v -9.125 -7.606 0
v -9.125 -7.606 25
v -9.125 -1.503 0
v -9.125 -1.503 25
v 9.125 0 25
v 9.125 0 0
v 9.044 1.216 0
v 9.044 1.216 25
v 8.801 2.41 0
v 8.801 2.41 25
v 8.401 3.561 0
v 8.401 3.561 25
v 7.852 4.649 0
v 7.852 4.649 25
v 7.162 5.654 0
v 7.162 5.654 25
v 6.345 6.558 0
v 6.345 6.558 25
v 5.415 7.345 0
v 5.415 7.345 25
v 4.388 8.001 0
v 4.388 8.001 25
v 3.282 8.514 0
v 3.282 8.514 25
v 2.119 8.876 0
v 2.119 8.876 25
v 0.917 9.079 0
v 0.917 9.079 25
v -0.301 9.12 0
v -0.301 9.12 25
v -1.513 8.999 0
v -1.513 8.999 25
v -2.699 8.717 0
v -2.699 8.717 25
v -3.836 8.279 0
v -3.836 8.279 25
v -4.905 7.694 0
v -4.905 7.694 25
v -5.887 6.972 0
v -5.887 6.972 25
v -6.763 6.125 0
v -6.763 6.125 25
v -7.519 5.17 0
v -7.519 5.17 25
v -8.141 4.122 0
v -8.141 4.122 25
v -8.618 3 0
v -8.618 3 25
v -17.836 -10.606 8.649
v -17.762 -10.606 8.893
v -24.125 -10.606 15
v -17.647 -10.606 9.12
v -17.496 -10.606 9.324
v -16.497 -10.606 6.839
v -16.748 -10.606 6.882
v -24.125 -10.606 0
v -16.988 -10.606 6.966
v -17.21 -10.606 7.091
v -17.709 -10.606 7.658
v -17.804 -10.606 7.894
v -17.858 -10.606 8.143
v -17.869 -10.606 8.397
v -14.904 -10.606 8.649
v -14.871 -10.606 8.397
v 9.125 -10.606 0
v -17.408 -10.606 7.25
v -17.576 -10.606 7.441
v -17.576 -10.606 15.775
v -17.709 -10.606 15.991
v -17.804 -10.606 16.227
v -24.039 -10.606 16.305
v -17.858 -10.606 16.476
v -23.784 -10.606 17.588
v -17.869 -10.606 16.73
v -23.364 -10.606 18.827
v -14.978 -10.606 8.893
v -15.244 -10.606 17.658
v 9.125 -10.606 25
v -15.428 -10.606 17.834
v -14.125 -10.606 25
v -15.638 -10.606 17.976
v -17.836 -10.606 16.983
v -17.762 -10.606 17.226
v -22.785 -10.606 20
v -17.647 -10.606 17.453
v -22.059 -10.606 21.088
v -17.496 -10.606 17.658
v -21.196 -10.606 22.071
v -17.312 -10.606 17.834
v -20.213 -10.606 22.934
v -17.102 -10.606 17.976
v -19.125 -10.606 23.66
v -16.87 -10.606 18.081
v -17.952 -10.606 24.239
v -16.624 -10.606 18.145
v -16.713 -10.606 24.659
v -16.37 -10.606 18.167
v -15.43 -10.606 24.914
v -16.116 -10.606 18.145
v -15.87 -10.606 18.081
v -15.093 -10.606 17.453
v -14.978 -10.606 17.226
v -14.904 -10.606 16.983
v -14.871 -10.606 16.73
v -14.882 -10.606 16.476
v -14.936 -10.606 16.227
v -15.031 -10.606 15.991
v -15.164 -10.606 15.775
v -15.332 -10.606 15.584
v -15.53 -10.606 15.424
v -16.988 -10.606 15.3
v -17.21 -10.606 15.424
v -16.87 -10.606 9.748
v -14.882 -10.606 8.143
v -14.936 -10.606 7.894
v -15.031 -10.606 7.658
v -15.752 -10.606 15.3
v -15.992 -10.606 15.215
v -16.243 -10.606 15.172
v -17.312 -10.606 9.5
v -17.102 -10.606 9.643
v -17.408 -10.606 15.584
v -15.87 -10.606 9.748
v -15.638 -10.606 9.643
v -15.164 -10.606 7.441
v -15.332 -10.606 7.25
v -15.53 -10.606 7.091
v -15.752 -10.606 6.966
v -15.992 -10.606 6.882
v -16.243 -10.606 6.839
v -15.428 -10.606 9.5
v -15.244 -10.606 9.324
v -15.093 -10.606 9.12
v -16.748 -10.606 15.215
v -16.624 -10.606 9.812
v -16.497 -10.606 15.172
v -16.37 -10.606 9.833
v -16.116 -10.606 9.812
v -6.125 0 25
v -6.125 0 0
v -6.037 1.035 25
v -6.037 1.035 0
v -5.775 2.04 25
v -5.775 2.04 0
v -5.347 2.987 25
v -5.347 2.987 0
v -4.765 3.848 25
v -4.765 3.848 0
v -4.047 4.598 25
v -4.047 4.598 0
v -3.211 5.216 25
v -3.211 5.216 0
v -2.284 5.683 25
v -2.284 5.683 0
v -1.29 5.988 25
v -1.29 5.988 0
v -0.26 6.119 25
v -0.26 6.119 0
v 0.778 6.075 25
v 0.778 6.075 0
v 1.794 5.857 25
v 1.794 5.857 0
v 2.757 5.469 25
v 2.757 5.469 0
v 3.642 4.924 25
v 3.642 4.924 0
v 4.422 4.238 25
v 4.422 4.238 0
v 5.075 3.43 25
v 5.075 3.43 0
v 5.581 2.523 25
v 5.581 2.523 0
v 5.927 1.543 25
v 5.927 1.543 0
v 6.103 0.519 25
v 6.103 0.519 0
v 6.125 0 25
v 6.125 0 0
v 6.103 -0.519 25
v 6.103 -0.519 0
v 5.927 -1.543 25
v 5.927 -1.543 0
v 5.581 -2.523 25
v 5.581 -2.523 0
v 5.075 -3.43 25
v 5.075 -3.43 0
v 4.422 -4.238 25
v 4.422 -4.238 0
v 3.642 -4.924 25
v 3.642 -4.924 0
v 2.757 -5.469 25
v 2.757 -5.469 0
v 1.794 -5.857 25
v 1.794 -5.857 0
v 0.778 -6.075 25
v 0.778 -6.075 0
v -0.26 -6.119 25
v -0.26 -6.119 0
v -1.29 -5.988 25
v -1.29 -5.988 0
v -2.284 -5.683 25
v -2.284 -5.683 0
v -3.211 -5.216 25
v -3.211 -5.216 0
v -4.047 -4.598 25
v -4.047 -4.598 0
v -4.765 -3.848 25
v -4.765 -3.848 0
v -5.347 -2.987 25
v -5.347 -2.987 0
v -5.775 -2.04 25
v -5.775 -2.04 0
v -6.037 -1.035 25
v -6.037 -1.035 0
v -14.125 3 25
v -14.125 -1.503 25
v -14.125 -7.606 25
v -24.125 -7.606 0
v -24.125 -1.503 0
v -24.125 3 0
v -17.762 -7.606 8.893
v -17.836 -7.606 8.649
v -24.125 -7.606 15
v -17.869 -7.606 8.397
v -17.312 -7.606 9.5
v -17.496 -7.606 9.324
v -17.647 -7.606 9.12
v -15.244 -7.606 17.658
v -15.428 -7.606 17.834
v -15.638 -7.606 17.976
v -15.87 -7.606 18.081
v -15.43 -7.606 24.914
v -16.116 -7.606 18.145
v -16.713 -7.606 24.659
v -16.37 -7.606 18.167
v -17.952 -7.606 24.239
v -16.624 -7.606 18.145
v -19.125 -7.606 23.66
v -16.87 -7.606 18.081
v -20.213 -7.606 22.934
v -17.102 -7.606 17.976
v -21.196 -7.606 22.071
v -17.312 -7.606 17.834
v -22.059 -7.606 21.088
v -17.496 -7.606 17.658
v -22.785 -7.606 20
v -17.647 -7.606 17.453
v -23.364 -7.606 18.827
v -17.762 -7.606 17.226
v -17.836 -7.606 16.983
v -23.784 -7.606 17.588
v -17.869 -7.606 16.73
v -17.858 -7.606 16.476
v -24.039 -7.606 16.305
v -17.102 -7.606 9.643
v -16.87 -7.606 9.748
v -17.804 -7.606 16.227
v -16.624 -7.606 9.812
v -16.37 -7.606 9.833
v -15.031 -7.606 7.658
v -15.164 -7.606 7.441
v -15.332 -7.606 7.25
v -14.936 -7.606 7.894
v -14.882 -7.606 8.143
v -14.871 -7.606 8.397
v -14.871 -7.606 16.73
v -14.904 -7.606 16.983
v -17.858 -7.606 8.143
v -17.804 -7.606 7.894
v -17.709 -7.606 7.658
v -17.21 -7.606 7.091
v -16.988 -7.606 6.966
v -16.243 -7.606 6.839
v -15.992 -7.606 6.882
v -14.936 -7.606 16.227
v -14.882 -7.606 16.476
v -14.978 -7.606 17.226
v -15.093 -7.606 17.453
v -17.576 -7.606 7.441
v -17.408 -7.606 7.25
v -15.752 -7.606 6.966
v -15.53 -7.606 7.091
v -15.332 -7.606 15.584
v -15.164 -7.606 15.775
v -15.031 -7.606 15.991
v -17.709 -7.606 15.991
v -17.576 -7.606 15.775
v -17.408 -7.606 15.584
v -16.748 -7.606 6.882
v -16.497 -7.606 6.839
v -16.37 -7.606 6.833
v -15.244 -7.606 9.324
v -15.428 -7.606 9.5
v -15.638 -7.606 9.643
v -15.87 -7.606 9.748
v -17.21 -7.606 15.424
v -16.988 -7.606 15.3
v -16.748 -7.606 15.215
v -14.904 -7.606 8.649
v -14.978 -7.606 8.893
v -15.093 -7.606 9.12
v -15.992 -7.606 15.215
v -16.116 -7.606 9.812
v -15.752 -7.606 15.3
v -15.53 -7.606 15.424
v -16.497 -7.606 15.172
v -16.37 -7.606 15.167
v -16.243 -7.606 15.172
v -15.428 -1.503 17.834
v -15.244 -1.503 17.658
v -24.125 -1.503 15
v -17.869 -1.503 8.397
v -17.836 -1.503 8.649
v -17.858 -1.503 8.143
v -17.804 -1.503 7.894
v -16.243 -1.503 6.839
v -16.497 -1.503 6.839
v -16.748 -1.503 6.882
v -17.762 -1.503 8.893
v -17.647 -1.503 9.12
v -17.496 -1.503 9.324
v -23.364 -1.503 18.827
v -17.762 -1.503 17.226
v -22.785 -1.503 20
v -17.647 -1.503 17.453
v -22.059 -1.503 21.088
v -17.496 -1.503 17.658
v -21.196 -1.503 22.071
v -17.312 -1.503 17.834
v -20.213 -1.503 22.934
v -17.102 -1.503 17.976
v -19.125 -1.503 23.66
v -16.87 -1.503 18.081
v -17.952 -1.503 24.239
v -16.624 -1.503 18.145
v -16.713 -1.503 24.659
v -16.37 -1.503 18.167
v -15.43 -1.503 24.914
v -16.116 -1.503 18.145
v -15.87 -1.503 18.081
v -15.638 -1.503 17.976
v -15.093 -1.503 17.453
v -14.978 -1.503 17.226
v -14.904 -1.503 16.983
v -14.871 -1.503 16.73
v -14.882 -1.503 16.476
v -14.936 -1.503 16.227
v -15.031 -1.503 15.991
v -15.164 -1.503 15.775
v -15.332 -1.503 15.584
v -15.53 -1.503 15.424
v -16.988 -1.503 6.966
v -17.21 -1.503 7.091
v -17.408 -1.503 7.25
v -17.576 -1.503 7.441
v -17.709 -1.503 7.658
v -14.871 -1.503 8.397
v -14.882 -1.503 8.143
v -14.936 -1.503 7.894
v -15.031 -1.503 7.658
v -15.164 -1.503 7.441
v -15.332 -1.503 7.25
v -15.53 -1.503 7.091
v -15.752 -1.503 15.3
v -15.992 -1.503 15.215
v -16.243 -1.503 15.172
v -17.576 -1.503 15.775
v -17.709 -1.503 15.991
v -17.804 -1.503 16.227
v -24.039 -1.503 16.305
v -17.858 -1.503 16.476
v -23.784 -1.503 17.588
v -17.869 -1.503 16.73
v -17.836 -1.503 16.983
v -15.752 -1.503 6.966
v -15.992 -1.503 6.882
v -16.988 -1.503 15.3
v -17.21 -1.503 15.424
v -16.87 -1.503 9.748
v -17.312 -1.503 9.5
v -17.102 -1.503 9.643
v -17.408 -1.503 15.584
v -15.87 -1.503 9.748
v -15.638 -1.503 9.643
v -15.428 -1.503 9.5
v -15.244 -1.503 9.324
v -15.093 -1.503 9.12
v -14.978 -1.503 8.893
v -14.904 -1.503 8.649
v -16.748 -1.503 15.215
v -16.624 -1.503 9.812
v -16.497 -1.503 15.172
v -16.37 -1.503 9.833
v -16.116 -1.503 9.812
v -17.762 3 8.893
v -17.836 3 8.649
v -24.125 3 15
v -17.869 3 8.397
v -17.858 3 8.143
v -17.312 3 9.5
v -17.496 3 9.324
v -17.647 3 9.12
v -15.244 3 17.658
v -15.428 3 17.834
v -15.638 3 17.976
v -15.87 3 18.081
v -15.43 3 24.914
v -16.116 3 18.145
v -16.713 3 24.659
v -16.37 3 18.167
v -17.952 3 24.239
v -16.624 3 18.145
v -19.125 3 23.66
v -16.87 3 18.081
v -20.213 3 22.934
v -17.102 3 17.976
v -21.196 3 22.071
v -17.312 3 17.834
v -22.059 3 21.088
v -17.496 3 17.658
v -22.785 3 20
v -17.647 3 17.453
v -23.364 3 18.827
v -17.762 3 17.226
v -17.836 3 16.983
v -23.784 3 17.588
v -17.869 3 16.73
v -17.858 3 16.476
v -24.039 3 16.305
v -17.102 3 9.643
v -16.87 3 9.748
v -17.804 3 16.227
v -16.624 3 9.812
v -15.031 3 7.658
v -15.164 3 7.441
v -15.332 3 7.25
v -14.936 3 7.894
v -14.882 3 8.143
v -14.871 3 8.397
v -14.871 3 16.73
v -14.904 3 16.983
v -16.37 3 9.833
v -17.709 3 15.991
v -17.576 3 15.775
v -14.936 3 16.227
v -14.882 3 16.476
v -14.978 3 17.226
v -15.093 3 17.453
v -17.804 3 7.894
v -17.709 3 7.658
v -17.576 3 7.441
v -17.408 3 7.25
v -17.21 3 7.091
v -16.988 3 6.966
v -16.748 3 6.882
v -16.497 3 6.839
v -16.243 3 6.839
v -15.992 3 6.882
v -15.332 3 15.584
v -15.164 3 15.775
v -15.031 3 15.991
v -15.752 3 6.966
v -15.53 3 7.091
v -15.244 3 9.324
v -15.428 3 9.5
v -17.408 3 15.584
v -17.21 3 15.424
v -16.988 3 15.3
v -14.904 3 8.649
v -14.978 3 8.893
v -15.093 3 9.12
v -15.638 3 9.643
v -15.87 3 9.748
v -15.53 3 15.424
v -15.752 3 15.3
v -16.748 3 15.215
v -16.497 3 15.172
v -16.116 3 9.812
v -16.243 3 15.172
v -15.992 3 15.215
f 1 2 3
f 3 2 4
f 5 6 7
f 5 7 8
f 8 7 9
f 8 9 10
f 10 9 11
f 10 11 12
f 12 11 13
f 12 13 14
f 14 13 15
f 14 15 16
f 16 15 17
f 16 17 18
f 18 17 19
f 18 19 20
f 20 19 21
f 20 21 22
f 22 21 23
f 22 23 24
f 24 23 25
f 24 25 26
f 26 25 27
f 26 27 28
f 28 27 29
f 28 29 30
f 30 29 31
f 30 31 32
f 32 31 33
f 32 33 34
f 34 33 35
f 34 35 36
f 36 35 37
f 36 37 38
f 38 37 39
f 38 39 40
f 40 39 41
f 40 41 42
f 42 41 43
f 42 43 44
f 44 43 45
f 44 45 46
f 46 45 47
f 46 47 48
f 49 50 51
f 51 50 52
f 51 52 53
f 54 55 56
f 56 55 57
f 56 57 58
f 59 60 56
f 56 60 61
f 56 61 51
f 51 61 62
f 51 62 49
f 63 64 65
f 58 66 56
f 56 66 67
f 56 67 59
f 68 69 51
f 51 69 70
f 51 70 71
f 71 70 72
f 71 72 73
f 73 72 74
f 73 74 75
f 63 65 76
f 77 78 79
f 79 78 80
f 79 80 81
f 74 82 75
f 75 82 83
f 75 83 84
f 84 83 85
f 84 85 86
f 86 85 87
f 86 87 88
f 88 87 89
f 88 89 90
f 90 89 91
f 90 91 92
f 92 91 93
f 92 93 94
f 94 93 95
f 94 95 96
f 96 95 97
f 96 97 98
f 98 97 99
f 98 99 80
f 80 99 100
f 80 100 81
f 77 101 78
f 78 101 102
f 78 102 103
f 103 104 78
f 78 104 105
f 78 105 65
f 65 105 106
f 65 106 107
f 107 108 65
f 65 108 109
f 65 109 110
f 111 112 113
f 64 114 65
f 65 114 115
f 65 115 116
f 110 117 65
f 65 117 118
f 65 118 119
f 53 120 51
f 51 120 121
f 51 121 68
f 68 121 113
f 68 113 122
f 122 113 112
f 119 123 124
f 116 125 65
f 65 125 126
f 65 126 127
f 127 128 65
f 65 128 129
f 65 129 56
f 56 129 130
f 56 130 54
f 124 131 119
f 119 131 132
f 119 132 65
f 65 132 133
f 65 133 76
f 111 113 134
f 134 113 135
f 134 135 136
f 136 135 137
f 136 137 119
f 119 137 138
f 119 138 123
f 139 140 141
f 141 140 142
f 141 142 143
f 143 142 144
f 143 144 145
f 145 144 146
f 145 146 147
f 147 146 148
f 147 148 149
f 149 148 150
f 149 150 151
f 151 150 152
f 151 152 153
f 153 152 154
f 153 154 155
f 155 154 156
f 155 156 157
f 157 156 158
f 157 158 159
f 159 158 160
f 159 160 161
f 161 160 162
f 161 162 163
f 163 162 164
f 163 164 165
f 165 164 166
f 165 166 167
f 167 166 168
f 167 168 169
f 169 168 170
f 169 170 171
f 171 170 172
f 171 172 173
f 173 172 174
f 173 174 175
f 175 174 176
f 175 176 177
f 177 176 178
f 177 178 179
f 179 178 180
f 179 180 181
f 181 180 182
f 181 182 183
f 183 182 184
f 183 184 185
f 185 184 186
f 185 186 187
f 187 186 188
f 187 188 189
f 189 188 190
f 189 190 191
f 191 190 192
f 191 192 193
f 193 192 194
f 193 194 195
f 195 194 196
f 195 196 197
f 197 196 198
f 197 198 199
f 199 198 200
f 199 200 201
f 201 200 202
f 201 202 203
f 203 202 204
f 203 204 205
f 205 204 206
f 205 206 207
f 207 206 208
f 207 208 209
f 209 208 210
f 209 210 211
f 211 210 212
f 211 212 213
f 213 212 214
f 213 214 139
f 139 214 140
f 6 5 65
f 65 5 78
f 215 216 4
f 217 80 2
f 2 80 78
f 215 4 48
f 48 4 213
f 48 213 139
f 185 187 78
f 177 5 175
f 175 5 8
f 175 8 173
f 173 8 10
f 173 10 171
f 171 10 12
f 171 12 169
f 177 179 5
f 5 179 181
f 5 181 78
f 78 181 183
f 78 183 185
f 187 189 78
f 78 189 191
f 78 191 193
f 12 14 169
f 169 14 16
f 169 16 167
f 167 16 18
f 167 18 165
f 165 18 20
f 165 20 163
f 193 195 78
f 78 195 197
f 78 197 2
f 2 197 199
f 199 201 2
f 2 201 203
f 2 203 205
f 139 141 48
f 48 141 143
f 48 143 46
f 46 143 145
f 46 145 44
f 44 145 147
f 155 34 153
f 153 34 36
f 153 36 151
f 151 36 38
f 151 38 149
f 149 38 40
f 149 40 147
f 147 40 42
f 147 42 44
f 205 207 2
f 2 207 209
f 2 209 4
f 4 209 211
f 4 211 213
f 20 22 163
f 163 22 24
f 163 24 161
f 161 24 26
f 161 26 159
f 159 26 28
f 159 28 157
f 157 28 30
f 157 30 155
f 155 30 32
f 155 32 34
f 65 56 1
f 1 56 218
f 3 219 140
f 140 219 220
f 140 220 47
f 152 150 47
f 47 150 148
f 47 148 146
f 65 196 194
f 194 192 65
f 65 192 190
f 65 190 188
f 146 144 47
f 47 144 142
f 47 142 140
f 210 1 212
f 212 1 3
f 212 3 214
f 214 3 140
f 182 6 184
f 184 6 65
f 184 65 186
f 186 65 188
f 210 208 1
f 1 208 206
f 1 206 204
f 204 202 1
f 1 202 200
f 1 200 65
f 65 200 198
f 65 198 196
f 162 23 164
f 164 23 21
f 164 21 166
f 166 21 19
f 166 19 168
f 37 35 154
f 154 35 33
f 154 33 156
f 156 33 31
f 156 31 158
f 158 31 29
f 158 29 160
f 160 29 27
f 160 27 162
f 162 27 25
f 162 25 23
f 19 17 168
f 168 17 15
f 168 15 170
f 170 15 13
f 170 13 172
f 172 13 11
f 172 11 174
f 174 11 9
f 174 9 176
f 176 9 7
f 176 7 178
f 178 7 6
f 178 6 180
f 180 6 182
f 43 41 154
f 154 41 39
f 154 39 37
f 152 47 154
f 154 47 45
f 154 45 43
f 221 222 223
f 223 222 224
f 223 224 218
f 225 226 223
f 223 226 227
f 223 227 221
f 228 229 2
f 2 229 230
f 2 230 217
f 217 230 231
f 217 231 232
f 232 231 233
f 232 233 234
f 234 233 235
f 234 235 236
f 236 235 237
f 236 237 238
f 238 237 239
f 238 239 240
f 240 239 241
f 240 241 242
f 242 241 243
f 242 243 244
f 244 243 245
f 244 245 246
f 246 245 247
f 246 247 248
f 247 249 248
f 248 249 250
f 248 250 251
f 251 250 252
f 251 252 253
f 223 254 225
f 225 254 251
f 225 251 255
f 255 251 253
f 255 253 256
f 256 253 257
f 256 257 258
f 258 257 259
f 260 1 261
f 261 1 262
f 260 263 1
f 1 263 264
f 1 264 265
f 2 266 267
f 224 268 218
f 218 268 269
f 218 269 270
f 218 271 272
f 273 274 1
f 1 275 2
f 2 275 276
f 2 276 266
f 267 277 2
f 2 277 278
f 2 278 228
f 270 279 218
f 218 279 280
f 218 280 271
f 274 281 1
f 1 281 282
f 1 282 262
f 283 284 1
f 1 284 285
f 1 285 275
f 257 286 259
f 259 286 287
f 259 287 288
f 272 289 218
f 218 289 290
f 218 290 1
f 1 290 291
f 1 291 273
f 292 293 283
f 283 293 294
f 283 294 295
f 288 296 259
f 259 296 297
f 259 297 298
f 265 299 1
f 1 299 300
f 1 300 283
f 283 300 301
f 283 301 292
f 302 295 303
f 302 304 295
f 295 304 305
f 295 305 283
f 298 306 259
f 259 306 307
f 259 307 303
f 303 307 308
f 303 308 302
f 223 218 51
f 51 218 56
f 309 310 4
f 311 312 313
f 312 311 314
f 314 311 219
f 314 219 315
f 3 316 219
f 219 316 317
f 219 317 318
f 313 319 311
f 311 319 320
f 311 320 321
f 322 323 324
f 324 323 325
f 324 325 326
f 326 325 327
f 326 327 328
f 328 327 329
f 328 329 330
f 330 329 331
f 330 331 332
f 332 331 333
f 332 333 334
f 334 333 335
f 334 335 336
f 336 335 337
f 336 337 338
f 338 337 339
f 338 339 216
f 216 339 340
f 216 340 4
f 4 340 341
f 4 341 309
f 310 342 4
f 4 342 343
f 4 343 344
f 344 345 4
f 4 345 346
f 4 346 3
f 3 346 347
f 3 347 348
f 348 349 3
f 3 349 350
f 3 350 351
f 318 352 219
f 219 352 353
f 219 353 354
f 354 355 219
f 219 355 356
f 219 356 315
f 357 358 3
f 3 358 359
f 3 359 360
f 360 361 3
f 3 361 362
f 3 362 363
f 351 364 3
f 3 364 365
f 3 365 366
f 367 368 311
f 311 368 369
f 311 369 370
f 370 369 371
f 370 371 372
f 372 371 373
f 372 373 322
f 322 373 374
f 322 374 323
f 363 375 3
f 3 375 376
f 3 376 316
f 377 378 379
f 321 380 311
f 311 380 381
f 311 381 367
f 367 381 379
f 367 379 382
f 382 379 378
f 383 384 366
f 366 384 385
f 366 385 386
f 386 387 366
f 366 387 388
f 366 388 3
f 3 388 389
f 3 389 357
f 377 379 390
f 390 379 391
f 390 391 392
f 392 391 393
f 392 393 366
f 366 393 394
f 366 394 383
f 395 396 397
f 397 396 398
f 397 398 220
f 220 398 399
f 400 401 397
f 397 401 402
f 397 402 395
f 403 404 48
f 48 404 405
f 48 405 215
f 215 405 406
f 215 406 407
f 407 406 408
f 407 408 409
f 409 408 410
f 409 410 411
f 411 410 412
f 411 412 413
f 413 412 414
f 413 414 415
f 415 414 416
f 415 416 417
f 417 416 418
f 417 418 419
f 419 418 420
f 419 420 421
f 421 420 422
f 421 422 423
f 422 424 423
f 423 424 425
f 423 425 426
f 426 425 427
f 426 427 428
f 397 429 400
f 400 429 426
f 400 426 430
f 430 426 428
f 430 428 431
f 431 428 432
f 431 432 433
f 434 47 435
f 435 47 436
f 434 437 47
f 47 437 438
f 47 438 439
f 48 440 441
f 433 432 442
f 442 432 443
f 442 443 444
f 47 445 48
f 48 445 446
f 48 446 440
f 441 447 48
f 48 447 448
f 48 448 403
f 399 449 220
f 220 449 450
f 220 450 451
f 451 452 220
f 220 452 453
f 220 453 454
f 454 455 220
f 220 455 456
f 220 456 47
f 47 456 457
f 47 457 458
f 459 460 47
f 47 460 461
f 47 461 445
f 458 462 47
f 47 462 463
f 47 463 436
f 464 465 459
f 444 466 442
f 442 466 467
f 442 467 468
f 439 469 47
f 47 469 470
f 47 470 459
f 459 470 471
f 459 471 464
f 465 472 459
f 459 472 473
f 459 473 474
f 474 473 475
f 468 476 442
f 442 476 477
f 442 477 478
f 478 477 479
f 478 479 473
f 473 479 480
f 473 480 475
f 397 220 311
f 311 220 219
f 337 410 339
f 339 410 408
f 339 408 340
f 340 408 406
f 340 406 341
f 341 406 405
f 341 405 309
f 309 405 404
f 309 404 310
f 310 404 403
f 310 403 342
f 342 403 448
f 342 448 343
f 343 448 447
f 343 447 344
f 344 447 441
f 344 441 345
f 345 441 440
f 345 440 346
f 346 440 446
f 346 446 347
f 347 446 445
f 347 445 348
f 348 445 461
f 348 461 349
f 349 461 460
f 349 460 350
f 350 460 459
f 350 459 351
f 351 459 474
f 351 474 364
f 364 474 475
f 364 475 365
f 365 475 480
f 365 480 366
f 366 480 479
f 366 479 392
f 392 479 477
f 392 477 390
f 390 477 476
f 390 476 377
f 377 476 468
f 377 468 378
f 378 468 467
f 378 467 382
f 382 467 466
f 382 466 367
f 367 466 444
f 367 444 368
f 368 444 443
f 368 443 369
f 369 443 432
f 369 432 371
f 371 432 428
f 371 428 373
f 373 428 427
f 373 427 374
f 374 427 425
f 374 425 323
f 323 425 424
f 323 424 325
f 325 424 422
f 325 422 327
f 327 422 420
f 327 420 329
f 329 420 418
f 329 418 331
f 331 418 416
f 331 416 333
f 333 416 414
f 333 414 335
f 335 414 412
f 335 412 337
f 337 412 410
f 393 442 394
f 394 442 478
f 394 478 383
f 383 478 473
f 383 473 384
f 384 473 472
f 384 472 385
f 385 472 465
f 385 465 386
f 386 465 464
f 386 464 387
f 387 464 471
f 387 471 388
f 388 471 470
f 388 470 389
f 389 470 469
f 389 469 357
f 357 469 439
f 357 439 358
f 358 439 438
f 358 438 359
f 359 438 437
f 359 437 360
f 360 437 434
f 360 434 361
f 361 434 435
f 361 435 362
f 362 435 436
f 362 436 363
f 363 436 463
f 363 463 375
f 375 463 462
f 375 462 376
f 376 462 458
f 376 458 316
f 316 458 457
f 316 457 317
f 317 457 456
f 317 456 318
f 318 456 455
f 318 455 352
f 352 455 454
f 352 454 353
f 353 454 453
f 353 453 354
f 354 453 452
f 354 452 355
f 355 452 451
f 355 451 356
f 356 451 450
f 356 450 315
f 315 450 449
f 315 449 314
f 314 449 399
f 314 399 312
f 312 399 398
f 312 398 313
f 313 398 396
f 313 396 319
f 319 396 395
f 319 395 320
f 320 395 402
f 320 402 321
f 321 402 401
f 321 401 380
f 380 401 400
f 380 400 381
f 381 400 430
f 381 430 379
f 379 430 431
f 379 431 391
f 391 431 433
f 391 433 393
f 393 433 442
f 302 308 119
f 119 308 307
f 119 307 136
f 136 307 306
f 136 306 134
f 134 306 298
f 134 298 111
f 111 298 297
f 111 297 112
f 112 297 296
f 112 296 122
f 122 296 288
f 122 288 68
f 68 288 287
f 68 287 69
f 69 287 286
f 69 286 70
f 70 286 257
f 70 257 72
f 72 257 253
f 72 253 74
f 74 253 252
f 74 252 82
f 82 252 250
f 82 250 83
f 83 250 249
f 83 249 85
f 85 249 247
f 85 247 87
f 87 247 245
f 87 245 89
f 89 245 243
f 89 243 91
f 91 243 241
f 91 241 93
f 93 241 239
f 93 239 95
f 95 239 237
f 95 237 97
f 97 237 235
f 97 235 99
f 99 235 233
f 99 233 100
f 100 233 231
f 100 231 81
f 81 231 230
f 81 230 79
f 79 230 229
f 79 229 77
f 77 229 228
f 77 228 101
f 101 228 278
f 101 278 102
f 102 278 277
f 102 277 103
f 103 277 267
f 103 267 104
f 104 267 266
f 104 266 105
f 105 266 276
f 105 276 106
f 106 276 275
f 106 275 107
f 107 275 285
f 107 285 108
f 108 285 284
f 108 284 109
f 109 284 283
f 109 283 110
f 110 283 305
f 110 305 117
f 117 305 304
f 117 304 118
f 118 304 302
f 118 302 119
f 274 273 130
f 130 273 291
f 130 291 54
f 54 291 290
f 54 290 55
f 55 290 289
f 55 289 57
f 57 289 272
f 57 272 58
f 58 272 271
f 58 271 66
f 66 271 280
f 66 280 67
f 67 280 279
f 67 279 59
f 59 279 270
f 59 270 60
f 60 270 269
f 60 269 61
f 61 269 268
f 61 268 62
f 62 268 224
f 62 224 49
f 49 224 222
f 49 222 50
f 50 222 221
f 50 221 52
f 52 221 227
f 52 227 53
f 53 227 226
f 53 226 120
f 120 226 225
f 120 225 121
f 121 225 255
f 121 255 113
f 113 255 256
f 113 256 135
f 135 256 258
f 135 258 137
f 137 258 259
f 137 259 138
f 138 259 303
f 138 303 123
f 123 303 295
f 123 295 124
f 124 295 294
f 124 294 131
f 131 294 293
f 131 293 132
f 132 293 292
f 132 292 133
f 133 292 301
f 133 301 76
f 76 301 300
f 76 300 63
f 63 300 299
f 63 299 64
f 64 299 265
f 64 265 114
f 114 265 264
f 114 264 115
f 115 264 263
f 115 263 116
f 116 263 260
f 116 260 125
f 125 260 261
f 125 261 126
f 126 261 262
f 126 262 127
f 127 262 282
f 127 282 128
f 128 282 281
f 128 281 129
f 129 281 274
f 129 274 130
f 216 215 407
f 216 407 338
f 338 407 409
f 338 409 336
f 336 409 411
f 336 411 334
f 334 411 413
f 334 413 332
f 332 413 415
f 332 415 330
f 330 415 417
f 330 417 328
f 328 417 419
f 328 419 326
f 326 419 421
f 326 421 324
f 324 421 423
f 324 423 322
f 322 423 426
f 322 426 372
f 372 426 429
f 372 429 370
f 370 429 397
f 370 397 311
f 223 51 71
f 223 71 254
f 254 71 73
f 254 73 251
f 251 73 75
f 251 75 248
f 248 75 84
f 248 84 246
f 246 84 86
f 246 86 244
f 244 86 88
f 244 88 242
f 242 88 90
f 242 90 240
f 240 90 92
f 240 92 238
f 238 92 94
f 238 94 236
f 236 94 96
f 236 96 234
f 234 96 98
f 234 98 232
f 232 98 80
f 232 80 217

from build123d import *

# Parameters (mm, degrees)
ESQUISSE1_R                  = 9.125
ESQUISSE1_R_2                = 6.125
BOSS_EXTRU_1_DEPTH           = 25
ESQUISSE13_W                 = 33.25
ESQUISSE13_H                 = 25
BOSS_EXTRU_10_DEPTH          = 3
BOSS_EXTRU_11_DEPTH          = 3
BOSS_EXTRU_11_DEPTH_BACK     = 1.503194454
ESQUISSE14_W                 = 16.5
ESQUISSE14_H                 = 25
ENL_V_MAT_EXTRU_1_DEPTH      = 38.311344137
ENL_V_MAT_EXTRU_1_DEPTH_BACK = 38.311344137
ESQUISSE15_R                 = 1.5
CONG_1_R                     = 10


with BuildPart() as part:
    # Esquisse1 → Boss.-Extru.1 (new body)
    # profile 1 of 2: a face of its own
    with BuildSketch(Plane.XY):
        Circle(ESQUISSE1_R)
        Circle(ESQUISSE1_R_2, mode=Mode.SUBTRACT)
    # profile 2 of 2: a face of its own
    with BuildSketch(Plane.XY):
        with BuildLine():
            ThreePointArc((9.125, 0), (0, -9.125), (-9.125, 0))
            Line((-9.125, 0), (-9.125, -10.60590961))
            Line((-9.125, -10.60590961), (9.125, -10.60590961))
            Line((9.125, -10.60590961), (9.125, 0))
        make_face()
    extrude(amount=BOSS_EXTRU_1_DEPTH)

    # Esquisse13 → Boss.-Extru.10 (add)
    with BuildSketch(Plane.XZ.offset(10.60590961)):
        with Locations((-7.5, 12.5)):
            Rectangle(ESQUISSE13_W, ESQUISSE13_H)
    extrude(amount=-BOSS_EXTRU_10_DEPTH)

    # Esquisse14 → Boss.-Extru.11 (add, two sides: drawn at the far end of the back side and taken through both)
    with BuildSketch(Plane(origin=(0, 0, 0), x_dir=(1, 0, 0), z_dir=(0, 1, 0)).offset(-BOSS_EXTRU_11_DEPTH_BACK)):
        with Locations((-15.875, -12.5)):
            Rectangle(ESQUISSE14_W, ESQUISSE14_H)
    extrude(amount=BOSS_EXTRU_11_DEPTH + BOSS_EXTRU_11_DEPTH_BACK)

    # Esquisse15 → Enlèv. mat.-Extru.1 (cut, two sides: drawn at the far end of the back side and taken through both)
    with BuildSketch(Plane(origin=(0, 3, 0), x_dir=(1, 0, 0), z_dir=(0, 1, 0)).offset(-ENL_V_MAT_EXTRU_1_DEPTH_BACK)):
        with Locations(Location((-16.37, -8.333333333, 0), (0, 0, 270))):
            Circle(ESQUISSE15_R)
        with Locations(Location((-16.37, -16.666666667, 0), (0, 0, 270))):
            Circle(ESQUISSE15_R)
    extrude(amount=ENL_V_MAT_EXTRU_1_DEPTH + ENL_V_MAT_EXTRU_1_DEPTH_BACK, mode=Mode.SUBTRACT)

    # Congé1
    cong_1_edges = [part.edges().sort_by_distance(p)[0] for p in [
        (-24.125, -9.10590961, 25),
        (-24.125, 0.748402773, 25),
    ]]
    fillet(cong_1_edges, radius=CONG_1_R)


solid = part.part
